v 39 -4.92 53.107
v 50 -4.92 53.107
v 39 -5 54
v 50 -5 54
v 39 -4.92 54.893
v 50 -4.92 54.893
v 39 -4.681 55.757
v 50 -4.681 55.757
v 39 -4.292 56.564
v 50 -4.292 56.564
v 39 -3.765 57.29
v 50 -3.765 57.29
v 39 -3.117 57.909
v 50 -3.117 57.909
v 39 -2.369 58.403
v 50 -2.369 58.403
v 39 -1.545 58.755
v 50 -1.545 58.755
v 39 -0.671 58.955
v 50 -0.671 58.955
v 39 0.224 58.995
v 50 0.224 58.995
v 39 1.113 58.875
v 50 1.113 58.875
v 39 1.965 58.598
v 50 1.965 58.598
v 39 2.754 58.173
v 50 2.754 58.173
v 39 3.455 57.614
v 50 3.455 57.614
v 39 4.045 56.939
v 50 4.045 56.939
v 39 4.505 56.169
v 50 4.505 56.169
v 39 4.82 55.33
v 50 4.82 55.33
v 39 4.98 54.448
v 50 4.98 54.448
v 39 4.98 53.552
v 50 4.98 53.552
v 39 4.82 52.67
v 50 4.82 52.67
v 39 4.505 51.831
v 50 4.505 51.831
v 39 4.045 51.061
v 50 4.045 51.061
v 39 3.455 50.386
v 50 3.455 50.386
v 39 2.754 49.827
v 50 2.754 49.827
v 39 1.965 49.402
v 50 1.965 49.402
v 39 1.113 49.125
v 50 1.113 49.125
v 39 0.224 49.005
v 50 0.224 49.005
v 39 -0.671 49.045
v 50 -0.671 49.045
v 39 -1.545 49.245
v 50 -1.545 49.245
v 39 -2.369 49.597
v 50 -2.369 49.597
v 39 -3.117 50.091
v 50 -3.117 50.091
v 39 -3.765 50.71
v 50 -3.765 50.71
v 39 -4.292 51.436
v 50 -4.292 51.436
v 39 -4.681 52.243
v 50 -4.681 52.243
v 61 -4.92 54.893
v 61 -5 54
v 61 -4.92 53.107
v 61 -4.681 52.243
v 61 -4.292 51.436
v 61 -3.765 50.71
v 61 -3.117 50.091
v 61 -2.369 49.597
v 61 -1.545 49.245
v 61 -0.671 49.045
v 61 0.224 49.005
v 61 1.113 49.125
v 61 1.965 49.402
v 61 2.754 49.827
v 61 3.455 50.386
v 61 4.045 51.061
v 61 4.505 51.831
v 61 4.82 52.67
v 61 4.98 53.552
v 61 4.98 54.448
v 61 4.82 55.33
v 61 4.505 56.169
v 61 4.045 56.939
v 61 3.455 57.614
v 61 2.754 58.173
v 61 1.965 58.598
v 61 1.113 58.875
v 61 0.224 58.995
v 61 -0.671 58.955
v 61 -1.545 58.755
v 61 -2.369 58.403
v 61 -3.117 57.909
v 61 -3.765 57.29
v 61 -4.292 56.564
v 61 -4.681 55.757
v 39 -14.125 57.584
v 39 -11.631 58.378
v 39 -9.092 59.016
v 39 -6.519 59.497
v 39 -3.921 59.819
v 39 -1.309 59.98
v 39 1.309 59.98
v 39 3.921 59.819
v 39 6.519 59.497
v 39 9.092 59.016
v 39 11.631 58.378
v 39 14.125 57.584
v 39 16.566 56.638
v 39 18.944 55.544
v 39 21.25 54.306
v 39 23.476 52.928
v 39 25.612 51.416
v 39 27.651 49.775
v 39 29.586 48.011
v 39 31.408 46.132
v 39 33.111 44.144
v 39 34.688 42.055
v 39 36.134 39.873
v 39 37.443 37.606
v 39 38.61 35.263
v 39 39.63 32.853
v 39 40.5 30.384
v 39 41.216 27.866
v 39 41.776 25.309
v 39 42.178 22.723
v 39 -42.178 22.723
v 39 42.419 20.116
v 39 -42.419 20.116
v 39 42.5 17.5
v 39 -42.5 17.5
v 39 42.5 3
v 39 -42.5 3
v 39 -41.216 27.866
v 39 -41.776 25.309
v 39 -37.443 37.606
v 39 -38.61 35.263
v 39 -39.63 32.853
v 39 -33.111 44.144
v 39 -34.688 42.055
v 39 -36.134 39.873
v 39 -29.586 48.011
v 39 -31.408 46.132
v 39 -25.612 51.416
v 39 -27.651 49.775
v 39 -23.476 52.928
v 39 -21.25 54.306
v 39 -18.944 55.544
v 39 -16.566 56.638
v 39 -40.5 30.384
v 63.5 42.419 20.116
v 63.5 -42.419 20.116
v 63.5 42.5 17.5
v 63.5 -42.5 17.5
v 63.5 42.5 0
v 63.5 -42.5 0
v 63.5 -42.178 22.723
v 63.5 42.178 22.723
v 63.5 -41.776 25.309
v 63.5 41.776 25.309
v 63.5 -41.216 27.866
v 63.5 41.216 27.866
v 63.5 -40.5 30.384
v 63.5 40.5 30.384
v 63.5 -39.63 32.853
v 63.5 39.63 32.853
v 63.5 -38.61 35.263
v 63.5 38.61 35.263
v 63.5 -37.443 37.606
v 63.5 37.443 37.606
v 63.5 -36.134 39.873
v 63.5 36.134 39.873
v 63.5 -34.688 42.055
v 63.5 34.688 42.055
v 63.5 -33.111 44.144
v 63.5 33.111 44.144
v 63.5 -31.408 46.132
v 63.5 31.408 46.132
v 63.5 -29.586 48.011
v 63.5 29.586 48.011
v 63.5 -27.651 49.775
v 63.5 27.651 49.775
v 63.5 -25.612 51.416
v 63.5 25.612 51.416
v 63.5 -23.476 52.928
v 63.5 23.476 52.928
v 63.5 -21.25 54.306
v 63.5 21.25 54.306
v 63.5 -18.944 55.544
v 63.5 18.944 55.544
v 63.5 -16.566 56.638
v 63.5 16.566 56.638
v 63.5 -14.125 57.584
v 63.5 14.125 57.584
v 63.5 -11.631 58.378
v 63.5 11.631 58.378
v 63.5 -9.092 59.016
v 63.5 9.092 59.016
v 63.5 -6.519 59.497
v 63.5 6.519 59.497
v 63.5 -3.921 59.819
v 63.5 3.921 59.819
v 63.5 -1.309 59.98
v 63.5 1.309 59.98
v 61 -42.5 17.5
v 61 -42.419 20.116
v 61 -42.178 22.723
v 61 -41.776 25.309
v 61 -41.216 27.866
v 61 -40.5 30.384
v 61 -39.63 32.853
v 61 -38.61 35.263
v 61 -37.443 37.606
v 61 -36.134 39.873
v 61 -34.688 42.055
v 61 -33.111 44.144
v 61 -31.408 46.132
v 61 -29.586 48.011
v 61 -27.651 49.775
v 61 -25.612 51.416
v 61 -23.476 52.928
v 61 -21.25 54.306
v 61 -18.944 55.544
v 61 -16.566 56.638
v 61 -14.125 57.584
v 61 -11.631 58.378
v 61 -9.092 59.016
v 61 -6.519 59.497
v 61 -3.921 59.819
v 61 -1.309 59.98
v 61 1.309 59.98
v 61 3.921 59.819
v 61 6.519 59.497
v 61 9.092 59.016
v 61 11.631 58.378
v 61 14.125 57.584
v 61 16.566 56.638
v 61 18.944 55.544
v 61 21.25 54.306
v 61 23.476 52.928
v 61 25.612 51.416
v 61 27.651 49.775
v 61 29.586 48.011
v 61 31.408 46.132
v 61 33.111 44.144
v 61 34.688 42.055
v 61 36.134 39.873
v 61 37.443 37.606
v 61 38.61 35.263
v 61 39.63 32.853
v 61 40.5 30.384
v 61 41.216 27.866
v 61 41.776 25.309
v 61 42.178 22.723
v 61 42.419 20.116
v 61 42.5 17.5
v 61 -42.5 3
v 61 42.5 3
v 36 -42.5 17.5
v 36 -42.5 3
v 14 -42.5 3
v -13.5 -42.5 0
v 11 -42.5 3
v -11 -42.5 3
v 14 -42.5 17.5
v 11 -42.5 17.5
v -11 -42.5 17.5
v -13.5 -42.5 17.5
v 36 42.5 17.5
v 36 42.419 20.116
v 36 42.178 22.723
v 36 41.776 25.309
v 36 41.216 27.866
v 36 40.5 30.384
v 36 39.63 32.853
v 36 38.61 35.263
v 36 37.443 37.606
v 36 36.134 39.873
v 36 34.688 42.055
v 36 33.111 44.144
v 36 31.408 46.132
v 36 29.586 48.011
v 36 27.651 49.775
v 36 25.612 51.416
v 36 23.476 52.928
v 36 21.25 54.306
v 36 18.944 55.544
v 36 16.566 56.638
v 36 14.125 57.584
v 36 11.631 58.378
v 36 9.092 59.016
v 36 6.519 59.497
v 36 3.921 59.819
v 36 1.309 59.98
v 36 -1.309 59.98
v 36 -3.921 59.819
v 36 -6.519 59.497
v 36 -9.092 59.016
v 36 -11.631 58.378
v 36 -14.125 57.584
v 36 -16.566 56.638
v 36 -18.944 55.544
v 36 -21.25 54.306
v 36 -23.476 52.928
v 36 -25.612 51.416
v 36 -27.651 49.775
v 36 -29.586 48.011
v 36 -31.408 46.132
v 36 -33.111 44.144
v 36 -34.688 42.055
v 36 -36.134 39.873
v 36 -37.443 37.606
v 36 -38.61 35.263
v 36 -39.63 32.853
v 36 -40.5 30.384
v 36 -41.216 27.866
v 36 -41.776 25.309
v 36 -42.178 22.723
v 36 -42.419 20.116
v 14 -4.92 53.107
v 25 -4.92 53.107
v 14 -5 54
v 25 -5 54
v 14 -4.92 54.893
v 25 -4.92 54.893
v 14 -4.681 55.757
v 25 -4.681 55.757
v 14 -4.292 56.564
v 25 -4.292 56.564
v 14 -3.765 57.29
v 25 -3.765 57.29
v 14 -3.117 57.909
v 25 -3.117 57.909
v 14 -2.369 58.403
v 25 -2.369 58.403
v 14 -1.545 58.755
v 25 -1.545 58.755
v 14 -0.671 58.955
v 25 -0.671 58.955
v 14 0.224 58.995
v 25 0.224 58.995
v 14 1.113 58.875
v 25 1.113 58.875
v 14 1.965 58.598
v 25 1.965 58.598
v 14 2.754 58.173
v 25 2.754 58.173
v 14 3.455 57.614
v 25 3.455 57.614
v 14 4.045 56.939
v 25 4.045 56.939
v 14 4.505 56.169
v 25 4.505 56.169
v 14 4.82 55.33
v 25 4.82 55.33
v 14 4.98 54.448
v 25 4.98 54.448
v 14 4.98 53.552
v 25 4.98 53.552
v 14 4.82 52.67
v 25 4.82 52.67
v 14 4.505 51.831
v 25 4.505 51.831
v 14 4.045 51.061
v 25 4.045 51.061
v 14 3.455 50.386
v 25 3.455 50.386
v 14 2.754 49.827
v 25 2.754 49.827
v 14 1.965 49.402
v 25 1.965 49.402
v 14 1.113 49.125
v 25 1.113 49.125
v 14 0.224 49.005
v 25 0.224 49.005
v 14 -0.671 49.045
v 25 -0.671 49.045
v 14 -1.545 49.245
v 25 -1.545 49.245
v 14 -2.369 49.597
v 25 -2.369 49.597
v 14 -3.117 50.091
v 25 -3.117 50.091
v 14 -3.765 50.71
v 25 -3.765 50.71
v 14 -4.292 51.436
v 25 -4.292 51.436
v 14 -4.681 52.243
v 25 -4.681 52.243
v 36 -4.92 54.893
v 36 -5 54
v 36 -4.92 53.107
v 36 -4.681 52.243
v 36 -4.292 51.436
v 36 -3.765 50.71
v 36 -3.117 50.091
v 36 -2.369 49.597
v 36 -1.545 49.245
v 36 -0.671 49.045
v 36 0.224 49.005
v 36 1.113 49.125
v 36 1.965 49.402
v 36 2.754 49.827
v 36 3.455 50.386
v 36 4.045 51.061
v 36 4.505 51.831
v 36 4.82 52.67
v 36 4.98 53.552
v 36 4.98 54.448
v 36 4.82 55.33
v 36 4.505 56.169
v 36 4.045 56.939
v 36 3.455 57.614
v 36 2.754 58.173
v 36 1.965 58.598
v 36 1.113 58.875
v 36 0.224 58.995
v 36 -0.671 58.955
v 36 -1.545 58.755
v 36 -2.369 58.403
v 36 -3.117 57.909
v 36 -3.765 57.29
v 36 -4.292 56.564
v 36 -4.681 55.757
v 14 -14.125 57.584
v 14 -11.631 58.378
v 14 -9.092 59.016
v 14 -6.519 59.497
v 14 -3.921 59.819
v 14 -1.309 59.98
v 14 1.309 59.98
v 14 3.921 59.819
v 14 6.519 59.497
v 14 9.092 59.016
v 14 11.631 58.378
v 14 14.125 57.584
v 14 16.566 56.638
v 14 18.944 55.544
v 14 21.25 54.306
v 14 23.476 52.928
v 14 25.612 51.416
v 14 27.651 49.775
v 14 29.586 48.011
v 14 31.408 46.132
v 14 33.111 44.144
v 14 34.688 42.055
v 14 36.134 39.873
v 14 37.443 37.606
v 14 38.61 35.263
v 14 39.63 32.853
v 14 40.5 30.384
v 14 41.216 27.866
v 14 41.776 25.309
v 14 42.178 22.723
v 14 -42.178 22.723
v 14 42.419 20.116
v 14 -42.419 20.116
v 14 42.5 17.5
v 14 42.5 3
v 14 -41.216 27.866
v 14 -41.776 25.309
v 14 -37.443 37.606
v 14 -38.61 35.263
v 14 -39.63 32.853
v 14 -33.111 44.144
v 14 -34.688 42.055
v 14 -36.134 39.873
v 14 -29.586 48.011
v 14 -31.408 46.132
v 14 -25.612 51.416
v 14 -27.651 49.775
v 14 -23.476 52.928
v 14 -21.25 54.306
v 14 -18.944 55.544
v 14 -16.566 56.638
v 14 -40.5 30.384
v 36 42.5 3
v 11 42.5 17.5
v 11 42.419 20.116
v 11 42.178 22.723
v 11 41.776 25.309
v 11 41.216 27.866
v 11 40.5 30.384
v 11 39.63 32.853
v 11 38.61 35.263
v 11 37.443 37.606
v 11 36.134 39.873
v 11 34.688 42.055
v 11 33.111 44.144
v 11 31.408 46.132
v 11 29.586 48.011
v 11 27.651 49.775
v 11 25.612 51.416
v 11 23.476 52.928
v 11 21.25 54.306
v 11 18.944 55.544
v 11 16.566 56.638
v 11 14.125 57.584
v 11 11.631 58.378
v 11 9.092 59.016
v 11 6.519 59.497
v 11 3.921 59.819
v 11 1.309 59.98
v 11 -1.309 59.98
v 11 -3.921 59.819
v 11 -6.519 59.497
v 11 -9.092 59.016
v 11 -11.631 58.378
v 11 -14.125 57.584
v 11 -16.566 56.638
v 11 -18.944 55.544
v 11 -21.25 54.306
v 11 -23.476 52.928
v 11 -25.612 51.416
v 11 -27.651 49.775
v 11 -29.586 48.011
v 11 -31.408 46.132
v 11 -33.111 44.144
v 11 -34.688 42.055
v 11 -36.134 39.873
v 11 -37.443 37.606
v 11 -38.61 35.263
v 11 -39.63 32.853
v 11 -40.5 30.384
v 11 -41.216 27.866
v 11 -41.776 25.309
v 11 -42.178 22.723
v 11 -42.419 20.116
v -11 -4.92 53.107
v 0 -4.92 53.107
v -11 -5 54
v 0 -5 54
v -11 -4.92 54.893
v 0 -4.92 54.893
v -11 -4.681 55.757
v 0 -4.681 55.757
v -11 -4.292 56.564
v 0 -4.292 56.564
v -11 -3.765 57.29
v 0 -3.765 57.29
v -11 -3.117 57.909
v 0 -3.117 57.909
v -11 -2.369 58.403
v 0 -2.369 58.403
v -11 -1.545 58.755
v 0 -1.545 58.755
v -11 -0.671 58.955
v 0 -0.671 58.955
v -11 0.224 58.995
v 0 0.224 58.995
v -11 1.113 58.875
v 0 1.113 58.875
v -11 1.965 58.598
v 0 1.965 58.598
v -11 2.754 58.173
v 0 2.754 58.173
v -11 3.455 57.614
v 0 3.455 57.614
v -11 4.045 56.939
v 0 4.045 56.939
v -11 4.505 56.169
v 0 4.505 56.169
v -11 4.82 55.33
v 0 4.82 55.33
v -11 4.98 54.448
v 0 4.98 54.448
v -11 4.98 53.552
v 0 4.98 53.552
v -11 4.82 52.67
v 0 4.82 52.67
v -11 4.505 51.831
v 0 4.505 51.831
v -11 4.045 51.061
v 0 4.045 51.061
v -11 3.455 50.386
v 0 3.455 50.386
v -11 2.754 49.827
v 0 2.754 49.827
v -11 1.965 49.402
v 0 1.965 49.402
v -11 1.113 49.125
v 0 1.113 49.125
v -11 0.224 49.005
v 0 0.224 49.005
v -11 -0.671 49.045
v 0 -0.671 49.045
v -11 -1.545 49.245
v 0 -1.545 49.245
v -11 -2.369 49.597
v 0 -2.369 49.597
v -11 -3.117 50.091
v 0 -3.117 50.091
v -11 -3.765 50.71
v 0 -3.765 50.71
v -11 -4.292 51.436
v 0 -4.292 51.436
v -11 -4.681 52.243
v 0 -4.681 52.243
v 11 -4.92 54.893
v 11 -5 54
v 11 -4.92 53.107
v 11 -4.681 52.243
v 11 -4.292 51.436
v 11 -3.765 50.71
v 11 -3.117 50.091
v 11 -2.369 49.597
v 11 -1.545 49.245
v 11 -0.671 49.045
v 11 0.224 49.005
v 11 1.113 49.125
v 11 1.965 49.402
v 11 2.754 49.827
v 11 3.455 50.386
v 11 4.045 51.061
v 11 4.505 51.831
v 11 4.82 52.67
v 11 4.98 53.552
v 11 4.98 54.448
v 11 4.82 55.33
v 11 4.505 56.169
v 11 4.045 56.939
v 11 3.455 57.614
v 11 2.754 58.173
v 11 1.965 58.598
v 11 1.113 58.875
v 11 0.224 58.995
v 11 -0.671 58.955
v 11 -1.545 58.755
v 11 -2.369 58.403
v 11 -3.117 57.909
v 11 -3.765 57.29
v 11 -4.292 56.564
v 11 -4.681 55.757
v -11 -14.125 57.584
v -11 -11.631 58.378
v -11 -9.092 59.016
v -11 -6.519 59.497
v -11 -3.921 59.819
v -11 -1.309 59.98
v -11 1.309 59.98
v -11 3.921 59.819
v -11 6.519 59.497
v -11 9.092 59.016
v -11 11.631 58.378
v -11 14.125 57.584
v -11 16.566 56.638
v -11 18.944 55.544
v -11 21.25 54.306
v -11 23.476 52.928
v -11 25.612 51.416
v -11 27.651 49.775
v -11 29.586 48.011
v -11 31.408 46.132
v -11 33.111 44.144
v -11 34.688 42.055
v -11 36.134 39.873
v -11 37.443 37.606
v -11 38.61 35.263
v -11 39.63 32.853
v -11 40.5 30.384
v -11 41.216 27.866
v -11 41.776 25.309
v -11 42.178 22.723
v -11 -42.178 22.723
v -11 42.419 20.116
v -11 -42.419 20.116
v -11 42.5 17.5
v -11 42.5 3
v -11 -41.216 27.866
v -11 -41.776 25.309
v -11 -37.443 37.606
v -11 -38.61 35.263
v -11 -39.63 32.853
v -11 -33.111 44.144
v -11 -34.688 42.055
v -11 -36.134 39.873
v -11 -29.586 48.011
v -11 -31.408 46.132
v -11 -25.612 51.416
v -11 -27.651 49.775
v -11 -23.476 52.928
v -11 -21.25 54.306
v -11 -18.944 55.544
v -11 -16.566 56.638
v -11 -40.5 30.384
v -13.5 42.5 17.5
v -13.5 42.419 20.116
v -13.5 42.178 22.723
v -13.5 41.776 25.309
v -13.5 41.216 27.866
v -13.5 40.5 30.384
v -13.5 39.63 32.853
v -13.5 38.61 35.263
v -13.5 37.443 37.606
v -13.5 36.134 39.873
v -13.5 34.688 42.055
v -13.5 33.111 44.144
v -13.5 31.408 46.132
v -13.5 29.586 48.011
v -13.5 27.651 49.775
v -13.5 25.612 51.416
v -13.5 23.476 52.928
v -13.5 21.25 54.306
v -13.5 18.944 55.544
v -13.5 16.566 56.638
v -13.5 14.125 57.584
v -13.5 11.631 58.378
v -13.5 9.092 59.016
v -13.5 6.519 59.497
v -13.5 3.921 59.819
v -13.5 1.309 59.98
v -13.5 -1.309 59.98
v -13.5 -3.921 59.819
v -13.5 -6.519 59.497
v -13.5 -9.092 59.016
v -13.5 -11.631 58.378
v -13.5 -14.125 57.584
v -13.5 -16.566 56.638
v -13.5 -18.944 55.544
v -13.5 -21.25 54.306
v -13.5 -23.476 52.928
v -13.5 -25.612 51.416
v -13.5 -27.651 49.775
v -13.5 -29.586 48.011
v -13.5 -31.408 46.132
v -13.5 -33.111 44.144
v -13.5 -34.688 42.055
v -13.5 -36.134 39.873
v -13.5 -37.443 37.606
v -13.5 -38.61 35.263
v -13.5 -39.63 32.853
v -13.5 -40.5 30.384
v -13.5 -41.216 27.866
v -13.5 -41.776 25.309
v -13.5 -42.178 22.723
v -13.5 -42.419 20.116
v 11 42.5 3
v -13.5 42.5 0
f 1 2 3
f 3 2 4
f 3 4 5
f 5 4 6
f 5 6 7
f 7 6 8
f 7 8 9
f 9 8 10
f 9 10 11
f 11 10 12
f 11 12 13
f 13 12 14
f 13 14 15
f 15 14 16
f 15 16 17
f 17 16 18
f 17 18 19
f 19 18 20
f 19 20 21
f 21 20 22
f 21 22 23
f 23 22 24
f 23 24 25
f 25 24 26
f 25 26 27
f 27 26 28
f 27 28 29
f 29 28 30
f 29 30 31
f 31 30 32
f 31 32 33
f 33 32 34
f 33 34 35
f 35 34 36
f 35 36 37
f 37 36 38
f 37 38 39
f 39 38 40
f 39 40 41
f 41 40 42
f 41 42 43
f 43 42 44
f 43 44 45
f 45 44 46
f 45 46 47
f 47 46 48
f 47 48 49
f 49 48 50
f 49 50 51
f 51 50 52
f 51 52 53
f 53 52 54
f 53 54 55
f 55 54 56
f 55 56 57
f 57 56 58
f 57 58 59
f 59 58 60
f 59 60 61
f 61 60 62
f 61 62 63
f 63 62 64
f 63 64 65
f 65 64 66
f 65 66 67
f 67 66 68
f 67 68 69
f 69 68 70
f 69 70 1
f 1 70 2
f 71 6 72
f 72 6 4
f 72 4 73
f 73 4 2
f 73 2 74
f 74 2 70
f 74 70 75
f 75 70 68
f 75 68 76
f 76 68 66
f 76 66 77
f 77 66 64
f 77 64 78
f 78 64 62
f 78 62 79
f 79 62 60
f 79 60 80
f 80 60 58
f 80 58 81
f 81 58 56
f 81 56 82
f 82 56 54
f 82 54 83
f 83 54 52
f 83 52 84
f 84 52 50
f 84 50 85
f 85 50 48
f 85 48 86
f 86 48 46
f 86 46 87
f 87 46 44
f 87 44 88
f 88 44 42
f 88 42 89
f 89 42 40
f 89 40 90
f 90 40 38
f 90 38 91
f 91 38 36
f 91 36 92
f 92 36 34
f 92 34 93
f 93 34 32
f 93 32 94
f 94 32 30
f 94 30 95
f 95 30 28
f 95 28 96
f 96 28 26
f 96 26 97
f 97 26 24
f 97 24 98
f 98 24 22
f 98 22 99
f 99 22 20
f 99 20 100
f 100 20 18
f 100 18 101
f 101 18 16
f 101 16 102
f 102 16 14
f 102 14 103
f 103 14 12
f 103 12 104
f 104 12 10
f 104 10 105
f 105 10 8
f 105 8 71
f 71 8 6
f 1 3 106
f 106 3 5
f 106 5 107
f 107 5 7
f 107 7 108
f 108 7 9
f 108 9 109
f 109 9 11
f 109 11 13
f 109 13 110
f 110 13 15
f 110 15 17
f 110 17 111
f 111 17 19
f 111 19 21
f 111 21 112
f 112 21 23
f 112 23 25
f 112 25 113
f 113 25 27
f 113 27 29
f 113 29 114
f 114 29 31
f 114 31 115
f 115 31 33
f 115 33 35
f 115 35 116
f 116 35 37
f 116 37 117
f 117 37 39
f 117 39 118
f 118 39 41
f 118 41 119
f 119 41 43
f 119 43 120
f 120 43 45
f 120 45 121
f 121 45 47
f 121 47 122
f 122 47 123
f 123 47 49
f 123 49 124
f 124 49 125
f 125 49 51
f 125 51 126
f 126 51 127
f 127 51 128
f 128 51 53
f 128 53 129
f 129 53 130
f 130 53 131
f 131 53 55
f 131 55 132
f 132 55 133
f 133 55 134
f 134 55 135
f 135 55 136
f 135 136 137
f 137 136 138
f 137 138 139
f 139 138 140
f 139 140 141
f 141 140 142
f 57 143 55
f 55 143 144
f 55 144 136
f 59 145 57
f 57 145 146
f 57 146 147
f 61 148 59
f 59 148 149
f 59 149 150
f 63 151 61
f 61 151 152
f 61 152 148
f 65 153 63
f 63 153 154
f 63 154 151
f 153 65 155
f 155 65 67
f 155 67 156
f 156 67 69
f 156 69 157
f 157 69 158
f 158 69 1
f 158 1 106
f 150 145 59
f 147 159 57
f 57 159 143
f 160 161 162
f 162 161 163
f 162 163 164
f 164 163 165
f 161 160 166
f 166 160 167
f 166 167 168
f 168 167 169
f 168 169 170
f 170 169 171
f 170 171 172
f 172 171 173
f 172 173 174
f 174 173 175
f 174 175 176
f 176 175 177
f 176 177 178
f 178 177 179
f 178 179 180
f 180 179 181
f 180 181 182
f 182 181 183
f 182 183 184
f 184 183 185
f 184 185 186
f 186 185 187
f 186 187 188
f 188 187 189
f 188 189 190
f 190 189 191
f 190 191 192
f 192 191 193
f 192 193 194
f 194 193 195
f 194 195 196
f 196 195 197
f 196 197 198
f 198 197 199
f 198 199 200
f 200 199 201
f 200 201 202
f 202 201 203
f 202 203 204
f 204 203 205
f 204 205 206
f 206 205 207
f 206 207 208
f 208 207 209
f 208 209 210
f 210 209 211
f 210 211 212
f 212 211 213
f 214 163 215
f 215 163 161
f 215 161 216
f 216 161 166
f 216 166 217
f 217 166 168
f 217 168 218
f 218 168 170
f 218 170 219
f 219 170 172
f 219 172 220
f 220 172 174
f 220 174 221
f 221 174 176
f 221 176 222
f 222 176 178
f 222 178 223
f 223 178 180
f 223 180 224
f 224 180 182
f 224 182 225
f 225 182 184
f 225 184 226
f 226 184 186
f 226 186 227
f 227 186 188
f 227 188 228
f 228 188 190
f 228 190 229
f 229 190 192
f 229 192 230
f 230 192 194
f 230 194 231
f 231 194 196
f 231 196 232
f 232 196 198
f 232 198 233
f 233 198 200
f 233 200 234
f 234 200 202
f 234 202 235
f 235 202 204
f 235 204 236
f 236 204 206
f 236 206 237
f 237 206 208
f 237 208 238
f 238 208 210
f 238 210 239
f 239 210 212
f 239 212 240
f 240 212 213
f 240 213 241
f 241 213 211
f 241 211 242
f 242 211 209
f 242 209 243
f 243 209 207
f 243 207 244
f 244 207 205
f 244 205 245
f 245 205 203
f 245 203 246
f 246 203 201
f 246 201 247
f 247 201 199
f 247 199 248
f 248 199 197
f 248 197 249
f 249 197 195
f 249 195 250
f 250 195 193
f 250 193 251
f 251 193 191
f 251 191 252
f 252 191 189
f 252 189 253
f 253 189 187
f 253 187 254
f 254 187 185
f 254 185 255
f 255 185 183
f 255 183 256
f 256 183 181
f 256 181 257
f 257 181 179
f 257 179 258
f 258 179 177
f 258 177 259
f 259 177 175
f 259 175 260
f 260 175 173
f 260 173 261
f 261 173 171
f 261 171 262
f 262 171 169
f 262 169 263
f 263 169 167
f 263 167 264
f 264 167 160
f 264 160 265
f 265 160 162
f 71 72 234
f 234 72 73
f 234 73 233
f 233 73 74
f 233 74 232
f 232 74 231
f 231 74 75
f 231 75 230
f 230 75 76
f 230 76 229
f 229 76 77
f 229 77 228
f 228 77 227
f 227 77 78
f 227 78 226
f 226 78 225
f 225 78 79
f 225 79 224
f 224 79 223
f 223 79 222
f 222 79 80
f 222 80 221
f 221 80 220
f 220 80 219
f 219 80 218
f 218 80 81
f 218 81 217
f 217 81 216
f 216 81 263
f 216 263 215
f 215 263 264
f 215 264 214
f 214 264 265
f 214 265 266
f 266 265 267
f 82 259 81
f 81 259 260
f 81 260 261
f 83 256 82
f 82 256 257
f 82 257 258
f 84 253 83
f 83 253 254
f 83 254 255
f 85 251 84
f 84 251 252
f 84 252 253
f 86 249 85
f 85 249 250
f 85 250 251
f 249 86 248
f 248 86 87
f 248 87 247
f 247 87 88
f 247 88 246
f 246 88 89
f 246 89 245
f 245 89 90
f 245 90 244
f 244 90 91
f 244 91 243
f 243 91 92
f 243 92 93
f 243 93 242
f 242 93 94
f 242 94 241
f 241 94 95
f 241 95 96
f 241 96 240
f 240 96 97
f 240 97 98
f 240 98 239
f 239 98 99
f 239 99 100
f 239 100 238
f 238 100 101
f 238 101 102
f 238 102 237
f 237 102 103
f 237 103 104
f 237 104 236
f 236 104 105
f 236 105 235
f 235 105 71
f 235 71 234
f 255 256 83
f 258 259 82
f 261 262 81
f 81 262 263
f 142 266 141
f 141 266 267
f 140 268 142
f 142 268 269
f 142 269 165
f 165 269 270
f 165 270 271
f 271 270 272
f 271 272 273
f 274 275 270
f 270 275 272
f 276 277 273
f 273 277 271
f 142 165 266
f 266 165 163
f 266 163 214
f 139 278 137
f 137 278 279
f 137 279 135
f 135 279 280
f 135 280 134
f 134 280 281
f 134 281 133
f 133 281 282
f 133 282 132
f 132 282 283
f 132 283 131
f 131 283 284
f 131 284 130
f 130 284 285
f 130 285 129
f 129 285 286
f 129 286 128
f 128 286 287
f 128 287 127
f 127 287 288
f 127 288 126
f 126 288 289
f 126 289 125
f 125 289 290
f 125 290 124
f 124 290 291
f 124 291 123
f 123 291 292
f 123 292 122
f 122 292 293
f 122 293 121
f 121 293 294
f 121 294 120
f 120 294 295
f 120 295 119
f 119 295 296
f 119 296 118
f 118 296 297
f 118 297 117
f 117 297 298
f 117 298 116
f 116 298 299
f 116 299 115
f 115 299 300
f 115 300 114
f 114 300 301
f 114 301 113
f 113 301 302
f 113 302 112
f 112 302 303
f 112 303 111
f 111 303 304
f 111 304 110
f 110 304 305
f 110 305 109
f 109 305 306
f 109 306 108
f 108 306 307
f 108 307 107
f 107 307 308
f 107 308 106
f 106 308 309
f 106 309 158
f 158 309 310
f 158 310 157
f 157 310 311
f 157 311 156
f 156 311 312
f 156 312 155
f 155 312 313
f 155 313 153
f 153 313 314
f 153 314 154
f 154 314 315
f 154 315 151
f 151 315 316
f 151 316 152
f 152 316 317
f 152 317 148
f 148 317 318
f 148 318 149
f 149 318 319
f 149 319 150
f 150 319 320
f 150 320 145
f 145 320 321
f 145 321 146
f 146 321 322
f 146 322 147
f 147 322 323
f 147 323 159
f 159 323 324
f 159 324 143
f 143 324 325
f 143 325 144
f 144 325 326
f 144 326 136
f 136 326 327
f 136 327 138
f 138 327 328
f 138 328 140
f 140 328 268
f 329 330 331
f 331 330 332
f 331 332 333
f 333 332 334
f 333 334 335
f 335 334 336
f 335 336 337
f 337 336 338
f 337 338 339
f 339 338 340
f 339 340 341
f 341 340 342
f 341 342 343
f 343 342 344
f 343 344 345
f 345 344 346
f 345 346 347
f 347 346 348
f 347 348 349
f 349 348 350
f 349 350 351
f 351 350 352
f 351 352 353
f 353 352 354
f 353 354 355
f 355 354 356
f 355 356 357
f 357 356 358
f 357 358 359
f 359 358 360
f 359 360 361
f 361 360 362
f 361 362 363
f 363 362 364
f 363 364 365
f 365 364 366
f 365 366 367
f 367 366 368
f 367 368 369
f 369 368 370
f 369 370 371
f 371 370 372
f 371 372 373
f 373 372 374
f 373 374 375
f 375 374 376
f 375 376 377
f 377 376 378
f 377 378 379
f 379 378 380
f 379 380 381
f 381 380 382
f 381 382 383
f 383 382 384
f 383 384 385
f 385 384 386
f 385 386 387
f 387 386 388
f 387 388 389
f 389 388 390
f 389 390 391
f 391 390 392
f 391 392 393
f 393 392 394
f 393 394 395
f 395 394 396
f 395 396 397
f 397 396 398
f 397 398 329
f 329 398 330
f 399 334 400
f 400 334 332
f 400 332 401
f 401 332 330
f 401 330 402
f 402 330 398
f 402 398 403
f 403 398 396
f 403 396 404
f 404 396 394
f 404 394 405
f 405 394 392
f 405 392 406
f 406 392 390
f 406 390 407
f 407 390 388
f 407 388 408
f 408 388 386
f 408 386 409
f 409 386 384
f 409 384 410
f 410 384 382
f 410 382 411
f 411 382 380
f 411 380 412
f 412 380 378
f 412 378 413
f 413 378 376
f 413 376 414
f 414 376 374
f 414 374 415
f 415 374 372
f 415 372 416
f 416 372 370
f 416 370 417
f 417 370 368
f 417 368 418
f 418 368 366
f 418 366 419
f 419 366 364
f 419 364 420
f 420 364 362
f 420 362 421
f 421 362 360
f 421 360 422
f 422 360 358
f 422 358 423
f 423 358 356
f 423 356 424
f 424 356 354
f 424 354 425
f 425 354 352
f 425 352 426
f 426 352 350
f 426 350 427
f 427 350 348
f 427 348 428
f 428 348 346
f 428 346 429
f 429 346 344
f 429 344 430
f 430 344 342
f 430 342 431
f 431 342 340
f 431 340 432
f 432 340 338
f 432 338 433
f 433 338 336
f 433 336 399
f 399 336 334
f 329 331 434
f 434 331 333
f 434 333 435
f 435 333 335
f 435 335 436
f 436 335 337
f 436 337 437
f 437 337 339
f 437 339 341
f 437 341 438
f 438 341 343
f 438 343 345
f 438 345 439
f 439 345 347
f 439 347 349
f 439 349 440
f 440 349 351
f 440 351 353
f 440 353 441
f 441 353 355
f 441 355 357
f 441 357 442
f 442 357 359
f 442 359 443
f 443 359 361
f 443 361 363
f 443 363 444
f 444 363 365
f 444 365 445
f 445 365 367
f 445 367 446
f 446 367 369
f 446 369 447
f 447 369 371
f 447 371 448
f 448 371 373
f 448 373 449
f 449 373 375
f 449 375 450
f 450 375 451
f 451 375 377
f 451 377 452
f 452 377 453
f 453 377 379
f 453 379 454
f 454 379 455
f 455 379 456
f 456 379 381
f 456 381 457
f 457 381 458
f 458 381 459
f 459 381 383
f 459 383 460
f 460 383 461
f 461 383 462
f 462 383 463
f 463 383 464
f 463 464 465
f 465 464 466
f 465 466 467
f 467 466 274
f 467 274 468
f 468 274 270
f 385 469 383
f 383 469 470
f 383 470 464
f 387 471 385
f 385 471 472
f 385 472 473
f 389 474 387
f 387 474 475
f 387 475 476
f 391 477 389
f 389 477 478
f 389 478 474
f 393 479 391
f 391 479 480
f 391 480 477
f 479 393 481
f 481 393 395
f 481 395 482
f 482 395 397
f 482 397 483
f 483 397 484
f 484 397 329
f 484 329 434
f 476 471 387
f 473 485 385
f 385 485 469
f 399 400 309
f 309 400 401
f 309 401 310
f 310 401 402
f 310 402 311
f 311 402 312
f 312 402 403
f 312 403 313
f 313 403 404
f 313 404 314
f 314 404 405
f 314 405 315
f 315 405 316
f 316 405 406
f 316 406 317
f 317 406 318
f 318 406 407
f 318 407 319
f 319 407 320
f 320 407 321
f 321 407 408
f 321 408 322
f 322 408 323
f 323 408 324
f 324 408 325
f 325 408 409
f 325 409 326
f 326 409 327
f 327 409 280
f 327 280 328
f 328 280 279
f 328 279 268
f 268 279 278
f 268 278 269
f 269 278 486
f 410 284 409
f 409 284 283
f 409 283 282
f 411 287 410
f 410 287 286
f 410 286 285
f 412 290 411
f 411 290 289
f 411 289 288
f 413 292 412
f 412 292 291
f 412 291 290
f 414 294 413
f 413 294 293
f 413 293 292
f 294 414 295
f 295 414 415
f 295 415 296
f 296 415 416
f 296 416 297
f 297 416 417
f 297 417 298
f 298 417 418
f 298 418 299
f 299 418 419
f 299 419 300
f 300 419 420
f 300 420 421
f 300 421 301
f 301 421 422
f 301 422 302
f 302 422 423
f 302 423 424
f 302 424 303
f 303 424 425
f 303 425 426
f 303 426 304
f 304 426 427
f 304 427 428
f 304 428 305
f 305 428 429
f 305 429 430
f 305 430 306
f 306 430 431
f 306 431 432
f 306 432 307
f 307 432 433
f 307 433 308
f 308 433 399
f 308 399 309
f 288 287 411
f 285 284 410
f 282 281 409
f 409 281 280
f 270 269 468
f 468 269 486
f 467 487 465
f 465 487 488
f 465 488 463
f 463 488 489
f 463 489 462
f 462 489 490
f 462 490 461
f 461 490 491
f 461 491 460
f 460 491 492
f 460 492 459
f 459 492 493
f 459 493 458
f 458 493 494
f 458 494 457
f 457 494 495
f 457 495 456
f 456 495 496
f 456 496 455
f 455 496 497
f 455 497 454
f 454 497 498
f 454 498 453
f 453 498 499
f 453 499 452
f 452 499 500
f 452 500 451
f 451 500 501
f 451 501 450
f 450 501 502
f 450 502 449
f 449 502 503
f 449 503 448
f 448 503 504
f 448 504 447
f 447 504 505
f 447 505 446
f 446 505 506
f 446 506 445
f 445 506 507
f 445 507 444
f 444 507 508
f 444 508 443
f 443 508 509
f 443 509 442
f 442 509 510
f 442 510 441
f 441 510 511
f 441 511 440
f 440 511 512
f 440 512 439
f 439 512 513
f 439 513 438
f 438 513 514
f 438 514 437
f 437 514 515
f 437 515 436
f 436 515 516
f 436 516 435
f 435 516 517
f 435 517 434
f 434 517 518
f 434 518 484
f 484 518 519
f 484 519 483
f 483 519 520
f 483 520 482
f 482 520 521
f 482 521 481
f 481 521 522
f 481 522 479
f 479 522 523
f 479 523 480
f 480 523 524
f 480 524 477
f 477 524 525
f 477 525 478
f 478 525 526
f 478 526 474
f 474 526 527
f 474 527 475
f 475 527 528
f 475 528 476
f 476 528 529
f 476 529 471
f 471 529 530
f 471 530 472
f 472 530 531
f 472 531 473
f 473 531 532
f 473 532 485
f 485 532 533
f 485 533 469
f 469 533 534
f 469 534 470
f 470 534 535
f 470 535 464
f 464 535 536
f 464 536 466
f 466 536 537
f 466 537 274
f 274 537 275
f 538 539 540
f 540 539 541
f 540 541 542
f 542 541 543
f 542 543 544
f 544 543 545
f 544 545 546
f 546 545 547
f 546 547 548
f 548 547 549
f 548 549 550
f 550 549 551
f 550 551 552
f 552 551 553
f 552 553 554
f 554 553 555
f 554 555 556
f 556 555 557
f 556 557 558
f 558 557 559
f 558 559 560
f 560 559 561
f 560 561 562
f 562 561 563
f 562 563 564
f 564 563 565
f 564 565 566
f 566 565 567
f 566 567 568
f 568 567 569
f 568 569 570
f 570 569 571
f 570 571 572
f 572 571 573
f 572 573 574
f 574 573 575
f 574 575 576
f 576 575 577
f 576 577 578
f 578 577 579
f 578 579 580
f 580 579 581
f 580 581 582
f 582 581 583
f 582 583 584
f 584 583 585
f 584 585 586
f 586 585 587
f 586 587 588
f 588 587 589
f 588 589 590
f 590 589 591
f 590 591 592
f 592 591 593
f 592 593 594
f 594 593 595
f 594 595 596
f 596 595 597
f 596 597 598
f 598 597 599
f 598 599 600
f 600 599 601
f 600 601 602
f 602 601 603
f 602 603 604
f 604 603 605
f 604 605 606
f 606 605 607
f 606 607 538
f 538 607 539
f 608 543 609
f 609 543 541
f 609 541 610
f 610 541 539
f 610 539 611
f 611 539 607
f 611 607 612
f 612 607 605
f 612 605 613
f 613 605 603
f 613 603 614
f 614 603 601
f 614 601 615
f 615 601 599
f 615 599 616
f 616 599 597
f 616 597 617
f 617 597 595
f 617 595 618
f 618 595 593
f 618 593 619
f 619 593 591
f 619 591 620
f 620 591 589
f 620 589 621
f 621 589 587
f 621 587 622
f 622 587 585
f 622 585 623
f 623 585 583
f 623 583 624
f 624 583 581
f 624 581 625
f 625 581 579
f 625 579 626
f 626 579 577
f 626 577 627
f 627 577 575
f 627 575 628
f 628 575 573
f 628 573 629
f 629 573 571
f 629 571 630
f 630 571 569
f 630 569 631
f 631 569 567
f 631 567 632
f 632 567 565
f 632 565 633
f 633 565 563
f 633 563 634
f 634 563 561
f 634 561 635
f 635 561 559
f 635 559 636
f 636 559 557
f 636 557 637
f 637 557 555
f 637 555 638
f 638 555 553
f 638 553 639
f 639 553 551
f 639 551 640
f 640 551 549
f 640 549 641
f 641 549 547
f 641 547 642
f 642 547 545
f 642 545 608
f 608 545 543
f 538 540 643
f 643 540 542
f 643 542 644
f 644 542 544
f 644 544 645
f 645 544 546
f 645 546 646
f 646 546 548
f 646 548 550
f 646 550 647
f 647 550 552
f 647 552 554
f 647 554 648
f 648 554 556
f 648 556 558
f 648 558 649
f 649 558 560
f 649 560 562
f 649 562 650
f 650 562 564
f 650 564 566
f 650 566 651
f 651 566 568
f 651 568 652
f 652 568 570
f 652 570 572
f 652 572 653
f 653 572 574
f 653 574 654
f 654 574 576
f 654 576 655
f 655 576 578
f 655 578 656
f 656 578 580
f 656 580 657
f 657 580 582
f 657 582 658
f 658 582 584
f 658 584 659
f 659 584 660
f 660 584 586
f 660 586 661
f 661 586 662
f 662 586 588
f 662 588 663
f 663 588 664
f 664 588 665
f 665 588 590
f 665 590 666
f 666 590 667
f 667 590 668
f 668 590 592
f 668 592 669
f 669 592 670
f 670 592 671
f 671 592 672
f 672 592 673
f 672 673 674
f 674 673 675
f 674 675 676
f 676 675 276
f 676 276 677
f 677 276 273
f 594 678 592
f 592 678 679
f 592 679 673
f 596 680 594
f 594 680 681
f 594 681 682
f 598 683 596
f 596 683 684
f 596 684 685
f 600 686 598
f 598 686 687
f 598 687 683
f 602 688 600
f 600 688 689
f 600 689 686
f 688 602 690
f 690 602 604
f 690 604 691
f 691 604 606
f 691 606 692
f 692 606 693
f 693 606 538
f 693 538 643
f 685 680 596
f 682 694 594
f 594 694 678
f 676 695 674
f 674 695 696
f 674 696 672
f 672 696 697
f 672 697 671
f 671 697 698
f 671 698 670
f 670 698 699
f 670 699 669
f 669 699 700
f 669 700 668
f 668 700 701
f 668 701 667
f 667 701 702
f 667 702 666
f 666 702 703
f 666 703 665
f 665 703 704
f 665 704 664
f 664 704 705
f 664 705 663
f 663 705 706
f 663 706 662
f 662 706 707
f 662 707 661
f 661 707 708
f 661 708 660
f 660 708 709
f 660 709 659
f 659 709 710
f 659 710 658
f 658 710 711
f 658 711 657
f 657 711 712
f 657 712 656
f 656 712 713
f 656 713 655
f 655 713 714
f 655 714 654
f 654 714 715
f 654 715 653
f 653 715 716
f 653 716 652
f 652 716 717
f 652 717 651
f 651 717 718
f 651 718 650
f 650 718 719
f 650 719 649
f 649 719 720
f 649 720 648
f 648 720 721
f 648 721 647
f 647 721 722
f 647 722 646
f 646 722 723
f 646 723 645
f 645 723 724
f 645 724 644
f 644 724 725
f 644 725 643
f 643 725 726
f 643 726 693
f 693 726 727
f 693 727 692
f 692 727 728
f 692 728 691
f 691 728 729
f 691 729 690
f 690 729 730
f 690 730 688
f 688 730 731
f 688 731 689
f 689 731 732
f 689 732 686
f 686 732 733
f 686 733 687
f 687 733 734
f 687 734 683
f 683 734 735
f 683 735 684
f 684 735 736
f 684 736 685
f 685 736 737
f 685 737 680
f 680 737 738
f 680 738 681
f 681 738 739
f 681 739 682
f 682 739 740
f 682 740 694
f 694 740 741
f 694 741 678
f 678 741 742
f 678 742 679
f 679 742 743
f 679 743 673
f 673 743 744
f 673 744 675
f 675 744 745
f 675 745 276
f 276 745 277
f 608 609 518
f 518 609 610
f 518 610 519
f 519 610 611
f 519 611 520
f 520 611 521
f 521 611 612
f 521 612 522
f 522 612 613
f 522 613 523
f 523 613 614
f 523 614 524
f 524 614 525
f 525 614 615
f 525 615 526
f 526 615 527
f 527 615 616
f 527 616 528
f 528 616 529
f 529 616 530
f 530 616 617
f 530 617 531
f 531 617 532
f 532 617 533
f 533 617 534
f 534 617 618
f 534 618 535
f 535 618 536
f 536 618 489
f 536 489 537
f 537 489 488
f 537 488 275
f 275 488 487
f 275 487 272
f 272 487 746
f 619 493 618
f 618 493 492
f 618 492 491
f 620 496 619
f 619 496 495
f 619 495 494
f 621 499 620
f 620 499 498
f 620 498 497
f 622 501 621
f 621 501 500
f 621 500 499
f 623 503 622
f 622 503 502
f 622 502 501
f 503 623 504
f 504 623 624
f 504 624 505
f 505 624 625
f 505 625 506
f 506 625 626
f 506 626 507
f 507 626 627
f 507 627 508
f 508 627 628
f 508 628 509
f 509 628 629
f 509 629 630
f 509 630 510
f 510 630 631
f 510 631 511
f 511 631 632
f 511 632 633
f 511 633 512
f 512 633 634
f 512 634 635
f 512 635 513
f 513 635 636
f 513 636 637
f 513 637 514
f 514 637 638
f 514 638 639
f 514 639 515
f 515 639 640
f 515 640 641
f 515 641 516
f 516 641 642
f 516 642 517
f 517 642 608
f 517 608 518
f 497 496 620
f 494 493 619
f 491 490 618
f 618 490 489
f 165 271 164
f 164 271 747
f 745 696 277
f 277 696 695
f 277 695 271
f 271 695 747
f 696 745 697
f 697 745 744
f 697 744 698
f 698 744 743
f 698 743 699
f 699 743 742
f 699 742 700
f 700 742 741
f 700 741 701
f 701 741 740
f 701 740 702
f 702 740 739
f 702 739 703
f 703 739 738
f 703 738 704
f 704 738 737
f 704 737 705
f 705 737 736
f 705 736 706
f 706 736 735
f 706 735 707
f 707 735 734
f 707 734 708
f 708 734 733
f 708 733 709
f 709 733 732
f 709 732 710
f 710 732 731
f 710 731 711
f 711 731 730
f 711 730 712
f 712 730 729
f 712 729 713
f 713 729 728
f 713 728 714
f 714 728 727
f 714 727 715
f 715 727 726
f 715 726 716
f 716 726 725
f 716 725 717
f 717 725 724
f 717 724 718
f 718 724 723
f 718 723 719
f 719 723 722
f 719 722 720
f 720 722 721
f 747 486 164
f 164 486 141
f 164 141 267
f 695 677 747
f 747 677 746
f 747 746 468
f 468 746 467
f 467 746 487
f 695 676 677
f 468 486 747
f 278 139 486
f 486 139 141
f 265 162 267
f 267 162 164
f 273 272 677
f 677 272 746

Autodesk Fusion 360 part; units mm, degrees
sketch "Sketch1" plane through (0, 0, 0) normal (0, 0, 1) x (1, 0, 0)
  line L0 (11, -40) -> (-11, -40)
  line L1 (-11, -42.5) -> (-11, 42.5)
  line L2 (-11, 40) -> (11, 40)
  line L3 (11, 42.5) -> (11, -42.5)
  line L4 (-13.5, -42.5) -> (-13.5, 42.5)
  line L5 (-13.5, 42.5) -> (13.5, 42.5)
  line L6 (13.5, 42.5) -> (13.5, -42.5)
  line L7 (13.5, -42.5) -> (-13.5, -42.5)
  dimension "d1" = 22
  dimension "d2" = 80
extrude "Extrude1" add sketch "Sketch1" along normal blind 3 makes body 1
extrude "Extrude2" add sketch "Sketch1" along normal blind 60 contours L3 L5 L6 L7 | L1 L4 L5 L7 bodies 1
fillet "Fillet1" radius 42.5 4 edges at (12.25, -42.5, 60) (-12.25, -42.5, 60) (12.25, 42.5, 60) (-12.25, 42.5, 60) on bodies 1
sketch "Sketch2" plane through (13.5, 0, 0) normal (1, 0, 0) x (0, 1, 0)
  arc A0 (42.5, 17.5) -> (-42.5, 17.5) centre (0, 17.5) ccw
  line L0 (-42.5, 17.5) -> (-42.5, 0)
  line L1 (-42.5, 0) -> (42.5, 0)
  line L2 (42.5, 0) -> (42.5, 17.5)
  circle A1 centre (0, 54) radius 5
  dimension "d10" = 10
extrude "Extrude3" add sketch "Sketch2" against normal blind 27 contours A1 bodies 1
pattern_linear "R-Pattern1" count 3 spacing 25 along (1, 0, 0) of bodies 1 makes body 2 at (38.5, 0.0028, 31.6723) makes body 3 at (63.5, 0.0028, 31.6723)
combine "Combine1" operation add target body 1 tool bodies 2 3
